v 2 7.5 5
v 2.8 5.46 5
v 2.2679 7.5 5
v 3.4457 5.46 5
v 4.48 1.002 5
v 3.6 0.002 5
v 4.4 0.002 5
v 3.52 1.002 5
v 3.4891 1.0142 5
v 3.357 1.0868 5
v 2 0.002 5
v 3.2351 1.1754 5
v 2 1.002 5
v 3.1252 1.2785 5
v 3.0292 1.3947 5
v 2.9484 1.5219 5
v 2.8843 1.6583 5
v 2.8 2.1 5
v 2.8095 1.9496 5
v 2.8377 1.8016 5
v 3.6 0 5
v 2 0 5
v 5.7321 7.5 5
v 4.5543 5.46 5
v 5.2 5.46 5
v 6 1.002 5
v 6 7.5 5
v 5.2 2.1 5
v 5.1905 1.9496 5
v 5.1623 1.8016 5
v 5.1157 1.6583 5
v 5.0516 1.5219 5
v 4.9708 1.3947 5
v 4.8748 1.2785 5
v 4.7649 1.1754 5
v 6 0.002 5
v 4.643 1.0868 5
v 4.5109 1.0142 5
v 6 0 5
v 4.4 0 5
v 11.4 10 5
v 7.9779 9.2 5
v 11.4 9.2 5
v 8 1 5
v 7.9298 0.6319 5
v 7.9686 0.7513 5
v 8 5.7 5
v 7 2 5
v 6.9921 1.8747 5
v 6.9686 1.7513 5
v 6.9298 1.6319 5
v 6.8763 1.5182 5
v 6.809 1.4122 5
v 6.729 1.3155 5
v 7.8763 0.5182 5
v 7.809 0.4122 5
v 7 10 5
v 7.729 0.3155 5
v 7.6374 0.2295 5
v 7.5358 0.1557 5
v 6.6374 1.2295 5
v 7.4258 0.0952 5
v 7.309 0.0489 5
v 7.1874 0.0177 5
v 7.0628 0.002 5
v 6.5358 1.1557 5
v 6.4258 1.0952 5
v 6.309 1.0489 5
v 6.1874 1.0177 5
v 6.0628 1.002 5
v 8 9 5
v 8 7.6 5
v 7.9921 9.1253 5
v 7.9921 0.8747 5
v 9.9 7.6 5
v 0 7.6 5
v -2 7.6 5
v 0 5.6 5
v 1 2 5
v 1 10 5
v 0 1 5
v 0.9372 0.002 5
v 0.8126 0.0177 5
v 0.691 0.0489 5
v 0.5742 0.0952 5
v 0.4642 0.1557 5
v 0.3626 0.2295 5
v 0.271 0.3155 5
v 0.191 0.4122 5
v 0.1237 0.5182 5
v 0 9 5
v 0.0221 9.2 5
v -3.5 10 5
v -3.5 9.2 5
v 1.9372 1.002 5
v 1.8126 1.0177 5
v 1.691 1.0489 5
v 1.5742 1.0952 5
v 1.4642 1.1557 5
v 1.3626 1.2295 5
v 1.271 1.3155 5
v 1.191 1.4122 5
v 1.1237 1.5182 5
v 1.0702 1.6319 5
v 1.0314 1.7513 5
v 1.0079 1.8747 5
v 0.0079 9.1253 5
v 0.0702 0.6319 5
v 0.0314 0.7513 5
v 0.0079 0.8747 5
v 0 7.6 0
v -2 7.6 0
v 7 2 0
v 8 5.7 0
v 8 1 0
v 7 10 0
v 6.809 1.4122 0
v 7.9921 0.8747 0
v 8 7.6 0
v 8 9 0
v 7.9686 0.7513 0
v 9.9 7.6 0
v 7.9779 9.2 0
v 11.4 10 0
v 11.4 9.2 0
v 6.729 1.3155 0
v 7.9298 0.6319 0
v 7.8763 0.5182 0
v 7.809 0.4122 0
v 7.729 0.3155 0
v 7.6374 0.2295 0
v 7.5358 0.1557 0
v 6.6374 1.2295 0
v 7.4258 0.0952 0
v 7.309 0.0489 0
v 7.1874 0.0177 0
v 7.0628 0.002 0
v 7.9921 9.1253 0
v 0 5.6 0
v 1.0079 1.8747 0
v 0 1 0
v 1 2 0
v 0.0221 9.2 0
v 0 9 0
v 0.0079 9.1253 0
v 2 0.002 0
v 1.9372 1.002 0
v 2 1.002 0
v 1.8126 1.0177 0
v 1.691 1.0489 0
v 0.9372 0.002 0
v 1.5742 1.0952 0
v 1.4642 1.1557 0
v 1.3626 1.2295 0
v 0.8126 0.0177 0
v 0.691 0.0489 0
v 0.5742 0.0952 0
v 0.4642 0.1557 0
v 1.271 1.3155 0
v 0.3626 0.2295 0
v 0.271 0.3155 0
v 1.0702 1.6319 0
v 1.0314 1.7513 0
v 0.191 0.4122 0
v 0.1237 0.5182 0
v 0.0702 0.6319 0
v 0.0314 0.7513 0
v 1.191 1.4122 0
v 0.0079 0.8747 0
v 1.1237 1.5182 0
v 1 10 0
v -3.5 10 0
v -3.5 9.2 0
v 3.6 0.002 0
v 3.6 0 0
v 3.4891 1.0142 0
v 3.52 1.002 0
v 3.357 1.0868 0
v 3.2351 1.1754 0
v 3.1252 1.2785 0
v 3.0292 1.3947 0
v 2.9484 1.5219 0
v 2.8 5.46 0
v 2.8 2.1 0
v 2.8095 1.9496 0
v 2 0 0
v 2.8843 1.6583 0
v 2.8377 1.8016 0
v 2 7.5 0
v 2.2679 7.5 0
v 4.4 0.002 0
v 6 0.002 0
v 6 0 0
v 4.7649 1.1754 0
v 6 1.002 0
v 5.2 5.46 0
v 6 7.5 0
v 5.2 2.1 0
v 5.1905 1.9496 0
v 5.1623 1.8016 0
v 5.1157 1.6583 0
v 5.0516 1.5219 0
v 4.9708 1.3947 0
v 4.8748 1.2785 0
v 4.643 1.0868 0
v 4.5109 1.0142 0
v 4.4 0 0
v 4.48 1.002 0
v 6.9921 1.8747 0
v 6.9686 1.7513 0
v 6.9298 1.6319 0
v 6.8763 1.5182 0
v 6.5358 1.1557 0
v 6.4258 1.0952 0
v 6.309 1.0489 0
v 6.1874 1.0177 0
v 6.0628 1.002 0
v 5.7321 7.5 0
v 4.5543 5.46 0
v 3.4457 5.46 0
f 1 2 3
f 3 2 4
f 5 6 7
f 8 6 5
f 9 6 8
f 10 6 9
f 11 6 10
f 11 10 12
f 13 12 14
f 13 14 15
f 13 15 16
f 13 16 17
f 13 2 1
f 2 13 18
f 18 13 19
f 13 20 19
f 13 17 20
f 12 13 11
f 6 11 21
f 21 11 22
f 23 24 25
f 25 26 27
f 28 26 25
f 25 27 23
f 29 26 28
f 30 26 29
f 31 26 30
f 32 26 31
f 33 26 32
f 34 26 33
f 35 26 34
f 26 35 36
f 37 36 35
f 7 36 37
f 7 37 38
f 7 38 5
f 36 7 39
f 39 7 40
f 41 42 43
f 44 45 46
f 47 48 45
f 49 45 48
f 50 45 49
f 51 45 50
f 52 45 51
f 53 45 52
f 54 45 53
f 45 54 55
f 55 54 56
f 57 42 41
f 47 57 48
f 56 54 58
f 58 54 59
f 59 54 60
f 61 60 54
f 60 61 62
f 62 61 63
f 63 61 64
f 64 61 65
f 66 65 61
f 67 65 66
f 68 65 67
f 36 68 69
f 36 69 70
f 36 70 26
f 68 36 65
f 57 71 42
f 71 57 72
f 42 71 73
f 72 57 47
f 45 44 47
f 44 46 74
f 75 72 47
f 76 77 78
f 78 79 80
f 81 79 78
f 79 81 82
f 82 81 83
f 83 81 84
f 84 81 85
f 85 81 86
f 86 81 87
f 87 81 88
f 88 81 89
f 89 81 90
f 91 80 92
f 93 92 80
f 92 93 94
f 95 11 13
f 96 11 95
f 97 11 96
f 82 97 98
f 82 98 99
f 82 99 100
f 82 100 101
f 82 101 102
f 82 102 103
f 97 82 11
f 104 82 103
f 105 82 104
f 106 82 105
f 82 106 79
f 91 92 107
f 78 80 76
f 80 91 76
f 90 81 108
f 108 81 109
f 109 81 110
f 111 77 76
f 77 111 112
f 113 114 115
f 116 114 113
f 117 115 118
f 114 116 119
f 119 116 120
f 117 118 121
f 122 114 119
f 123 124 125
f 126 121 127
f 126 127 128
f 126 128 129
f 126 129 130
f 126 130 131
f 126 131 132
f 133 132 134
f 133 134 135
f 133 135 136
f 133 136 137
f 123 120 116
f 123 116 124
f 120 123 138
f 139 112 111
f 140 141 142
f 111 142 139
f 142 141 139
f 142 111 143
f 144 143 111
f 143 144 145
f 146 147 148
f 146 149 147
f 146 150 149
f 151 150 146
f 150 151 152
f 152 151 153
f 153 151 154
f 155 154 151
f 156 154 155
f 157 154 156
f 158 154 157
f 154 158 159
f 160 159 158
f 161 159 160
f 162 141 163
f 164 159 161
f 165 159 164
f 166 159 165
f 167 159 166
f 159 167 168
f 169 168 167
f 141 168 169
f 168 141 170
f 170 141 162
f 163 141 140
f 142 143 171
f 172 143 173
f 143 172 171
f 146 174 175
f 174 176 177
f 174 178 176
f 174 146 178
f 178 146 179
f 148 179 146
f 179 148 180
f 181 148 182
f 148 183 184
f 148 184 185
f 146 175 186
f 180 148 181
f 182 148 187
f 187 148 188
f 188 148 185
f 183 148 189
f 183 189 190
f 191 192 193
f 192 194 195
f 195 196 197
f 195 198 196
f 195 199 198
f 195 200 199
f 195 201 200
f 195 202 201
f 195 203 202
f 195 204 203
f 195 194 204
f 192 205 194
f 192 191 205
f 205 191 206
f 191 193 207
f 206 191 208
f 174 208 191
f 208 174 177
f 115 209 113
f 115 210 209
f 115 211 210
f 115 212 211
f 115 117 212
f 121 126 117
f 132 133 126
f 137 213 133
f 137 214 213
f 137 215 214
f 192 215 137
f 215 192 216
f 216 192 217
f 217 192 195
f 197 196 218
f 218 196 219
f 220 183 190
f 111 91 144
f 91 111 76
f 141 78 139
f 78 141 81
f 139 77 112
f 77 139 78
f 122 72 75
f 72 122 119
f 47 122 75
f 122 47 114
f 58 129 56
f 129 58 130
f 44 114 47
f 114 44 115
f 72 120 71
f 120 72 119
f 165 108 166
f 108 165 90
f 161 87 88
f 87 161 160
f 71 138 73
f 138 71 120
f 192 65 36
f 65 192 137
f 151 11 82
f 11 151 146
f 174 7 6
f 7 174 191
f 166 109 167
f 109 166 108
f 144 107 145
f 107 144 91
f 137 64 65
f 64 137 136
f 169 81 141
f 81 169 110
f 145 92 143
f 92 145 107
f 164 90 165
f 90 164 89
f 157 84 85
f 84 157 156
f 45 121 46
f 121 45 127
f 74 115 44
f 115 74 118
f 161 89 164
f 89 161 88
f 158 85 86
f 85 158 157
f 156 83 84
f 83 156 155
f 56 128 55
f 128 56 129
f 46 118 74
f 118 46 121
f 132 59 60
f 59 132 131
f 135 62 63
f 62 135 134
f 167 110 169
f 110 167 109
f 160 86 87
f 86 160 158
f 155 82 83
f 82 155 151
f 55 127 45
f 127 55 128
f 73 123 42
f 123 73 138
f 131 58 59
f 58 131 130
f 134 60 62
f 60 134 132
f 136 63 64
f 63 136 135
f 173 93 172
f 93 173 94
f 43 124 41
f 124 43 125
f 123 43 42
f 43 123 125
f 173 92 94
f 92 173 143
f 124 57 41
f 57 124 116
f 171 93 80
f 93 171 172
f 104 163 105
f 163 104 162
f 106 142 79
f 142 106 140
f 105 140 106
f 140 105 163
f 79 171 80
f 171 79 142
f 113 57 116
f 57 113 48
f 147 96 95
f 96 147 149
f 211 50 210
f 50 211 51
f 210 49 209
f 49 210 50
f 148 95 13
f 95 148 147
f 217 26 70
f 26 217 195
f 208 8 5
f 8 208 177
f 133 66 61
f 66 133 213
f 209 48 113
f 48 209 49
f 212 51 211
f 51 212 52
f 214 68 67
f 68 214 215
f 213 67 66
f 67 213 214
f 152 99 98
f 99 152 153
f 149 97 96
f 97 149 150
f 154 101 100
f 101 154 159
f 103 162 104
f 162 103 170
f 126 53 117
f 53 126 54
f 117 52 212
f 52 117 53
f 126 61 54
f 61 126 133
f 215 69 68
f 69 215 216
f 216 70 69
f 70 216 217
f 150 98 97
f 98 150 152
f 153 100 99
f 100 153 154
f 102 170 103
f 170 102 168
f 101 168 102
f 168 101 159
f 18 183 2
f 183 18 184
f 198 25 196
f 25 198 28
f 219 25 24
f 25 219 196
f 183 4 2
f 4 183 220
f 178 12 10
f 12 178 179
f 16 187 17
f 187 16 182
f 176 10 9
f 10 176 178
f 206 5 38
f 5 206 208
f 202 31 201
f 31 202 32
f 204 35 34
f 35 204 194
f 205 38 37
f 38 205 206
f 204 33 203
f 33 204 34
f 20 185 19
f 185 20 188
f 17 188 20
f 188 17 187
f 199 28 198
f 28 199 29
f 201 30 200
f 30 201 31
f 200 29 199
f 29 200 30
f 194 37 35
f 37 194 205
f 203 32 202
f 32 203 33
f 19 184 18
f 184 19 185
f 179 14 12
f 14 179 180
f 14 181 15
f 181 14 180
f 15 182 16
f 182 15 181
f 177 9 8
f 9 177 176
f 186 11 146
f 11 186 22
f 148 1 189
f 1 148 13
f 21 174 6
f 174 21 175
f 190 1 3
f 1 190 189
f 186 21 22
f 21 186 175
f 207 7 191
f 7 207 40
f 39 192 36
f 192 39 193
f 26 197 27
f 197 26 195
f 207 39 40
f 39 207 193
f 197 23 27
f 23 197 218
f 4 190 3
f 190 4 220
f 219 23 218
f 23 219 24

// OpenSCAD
// change if sits too loose inside of the case
height = 5;

click_stem_holder();

module click_stem_holder() {
    $fn=50;
    inner_depth = 10;
    inner_size = 8;
    cap_clip();
    inner_center = inner_size / 2;
    pin_width = 0.4;
    difference() {
        union() {
            stabs_width = 1.6;
            stabs_height = 7.5;
            translate([inner_center - 2,0,0]) {
                cube([stabs_width,stabs_height,height]);
            }
            translate([inner_center + pin_width,0,0]) {
                cube([stabs_width,stabs_height,height]);
            }
        }
        translate([inner_center,2.1,0]) {
            cube_width = pin_width*6;
            translate([-cube_width/2,0,0]) {
                cube([cube_width,cube_width*1.4,height]);
            }
            linear_extrude(height) {
                circle(r=pin_width*3);
            }
        }
        
        translate([inner_center,7.5,0]) {
            rotate([0,0,30]) {
                cylinder(h = height, r=3, $fn=3);
            }
        }
    }
}

module cap_clip() {
    hook_depth = 1.4;
    widest_part = 14.9;
    holder_thickness = 0.8;
    inner_depth = 10;
    inner_size = 8;
    difference() {
        union() {
            roundedcube([inner_size,inner_depth,height], 1);
            translate([-3.5,inner_depth - holder_thickness,0]) {
                cube([widest_part,holder_thickness,height]);
            }
            rect_side = 2;
            y_top = inner_depth - rect_side - holder_thickness * 3;
            // left bracket
            translate([0,y_top,0]) {
                rotate([0,0,90]) {
                    rectangular_triangle(rect_side, height);
                }
            }
            // right bracket
            translate([widest_part-5,y_top + rect_side,0]) {
                rotate([0,0,180]) {
                    rectangular_triangle(rect_side, height);
                }
            }
        }
        translate([1,1,0]) {
            roundedcube([inner_size-2,12,height+2], 1);
        }
    }
}

module rectangular_triangle(side_length = 1, height = 1) {
    difference() {
        cube([side_length,side_length,height]);
        rotate([0,0,45]) {
            cube([side_length*1.5,side_length,height]);
        }
    }
}

module roundedcube(size = [1,1,1], radius = 5) {
    radius = min(size[0]/2-0.01, size[1]/2-0.01, radius);
    minkowski() {
        diameter = radius * 2;
        cube([
            size[0] - diameter,
            size[1] - diameter,
            size[2]/2]);
        translate([radius,radius]) {
            cylinder(r=radius,h=size[2]/2);
        }
    }
}
